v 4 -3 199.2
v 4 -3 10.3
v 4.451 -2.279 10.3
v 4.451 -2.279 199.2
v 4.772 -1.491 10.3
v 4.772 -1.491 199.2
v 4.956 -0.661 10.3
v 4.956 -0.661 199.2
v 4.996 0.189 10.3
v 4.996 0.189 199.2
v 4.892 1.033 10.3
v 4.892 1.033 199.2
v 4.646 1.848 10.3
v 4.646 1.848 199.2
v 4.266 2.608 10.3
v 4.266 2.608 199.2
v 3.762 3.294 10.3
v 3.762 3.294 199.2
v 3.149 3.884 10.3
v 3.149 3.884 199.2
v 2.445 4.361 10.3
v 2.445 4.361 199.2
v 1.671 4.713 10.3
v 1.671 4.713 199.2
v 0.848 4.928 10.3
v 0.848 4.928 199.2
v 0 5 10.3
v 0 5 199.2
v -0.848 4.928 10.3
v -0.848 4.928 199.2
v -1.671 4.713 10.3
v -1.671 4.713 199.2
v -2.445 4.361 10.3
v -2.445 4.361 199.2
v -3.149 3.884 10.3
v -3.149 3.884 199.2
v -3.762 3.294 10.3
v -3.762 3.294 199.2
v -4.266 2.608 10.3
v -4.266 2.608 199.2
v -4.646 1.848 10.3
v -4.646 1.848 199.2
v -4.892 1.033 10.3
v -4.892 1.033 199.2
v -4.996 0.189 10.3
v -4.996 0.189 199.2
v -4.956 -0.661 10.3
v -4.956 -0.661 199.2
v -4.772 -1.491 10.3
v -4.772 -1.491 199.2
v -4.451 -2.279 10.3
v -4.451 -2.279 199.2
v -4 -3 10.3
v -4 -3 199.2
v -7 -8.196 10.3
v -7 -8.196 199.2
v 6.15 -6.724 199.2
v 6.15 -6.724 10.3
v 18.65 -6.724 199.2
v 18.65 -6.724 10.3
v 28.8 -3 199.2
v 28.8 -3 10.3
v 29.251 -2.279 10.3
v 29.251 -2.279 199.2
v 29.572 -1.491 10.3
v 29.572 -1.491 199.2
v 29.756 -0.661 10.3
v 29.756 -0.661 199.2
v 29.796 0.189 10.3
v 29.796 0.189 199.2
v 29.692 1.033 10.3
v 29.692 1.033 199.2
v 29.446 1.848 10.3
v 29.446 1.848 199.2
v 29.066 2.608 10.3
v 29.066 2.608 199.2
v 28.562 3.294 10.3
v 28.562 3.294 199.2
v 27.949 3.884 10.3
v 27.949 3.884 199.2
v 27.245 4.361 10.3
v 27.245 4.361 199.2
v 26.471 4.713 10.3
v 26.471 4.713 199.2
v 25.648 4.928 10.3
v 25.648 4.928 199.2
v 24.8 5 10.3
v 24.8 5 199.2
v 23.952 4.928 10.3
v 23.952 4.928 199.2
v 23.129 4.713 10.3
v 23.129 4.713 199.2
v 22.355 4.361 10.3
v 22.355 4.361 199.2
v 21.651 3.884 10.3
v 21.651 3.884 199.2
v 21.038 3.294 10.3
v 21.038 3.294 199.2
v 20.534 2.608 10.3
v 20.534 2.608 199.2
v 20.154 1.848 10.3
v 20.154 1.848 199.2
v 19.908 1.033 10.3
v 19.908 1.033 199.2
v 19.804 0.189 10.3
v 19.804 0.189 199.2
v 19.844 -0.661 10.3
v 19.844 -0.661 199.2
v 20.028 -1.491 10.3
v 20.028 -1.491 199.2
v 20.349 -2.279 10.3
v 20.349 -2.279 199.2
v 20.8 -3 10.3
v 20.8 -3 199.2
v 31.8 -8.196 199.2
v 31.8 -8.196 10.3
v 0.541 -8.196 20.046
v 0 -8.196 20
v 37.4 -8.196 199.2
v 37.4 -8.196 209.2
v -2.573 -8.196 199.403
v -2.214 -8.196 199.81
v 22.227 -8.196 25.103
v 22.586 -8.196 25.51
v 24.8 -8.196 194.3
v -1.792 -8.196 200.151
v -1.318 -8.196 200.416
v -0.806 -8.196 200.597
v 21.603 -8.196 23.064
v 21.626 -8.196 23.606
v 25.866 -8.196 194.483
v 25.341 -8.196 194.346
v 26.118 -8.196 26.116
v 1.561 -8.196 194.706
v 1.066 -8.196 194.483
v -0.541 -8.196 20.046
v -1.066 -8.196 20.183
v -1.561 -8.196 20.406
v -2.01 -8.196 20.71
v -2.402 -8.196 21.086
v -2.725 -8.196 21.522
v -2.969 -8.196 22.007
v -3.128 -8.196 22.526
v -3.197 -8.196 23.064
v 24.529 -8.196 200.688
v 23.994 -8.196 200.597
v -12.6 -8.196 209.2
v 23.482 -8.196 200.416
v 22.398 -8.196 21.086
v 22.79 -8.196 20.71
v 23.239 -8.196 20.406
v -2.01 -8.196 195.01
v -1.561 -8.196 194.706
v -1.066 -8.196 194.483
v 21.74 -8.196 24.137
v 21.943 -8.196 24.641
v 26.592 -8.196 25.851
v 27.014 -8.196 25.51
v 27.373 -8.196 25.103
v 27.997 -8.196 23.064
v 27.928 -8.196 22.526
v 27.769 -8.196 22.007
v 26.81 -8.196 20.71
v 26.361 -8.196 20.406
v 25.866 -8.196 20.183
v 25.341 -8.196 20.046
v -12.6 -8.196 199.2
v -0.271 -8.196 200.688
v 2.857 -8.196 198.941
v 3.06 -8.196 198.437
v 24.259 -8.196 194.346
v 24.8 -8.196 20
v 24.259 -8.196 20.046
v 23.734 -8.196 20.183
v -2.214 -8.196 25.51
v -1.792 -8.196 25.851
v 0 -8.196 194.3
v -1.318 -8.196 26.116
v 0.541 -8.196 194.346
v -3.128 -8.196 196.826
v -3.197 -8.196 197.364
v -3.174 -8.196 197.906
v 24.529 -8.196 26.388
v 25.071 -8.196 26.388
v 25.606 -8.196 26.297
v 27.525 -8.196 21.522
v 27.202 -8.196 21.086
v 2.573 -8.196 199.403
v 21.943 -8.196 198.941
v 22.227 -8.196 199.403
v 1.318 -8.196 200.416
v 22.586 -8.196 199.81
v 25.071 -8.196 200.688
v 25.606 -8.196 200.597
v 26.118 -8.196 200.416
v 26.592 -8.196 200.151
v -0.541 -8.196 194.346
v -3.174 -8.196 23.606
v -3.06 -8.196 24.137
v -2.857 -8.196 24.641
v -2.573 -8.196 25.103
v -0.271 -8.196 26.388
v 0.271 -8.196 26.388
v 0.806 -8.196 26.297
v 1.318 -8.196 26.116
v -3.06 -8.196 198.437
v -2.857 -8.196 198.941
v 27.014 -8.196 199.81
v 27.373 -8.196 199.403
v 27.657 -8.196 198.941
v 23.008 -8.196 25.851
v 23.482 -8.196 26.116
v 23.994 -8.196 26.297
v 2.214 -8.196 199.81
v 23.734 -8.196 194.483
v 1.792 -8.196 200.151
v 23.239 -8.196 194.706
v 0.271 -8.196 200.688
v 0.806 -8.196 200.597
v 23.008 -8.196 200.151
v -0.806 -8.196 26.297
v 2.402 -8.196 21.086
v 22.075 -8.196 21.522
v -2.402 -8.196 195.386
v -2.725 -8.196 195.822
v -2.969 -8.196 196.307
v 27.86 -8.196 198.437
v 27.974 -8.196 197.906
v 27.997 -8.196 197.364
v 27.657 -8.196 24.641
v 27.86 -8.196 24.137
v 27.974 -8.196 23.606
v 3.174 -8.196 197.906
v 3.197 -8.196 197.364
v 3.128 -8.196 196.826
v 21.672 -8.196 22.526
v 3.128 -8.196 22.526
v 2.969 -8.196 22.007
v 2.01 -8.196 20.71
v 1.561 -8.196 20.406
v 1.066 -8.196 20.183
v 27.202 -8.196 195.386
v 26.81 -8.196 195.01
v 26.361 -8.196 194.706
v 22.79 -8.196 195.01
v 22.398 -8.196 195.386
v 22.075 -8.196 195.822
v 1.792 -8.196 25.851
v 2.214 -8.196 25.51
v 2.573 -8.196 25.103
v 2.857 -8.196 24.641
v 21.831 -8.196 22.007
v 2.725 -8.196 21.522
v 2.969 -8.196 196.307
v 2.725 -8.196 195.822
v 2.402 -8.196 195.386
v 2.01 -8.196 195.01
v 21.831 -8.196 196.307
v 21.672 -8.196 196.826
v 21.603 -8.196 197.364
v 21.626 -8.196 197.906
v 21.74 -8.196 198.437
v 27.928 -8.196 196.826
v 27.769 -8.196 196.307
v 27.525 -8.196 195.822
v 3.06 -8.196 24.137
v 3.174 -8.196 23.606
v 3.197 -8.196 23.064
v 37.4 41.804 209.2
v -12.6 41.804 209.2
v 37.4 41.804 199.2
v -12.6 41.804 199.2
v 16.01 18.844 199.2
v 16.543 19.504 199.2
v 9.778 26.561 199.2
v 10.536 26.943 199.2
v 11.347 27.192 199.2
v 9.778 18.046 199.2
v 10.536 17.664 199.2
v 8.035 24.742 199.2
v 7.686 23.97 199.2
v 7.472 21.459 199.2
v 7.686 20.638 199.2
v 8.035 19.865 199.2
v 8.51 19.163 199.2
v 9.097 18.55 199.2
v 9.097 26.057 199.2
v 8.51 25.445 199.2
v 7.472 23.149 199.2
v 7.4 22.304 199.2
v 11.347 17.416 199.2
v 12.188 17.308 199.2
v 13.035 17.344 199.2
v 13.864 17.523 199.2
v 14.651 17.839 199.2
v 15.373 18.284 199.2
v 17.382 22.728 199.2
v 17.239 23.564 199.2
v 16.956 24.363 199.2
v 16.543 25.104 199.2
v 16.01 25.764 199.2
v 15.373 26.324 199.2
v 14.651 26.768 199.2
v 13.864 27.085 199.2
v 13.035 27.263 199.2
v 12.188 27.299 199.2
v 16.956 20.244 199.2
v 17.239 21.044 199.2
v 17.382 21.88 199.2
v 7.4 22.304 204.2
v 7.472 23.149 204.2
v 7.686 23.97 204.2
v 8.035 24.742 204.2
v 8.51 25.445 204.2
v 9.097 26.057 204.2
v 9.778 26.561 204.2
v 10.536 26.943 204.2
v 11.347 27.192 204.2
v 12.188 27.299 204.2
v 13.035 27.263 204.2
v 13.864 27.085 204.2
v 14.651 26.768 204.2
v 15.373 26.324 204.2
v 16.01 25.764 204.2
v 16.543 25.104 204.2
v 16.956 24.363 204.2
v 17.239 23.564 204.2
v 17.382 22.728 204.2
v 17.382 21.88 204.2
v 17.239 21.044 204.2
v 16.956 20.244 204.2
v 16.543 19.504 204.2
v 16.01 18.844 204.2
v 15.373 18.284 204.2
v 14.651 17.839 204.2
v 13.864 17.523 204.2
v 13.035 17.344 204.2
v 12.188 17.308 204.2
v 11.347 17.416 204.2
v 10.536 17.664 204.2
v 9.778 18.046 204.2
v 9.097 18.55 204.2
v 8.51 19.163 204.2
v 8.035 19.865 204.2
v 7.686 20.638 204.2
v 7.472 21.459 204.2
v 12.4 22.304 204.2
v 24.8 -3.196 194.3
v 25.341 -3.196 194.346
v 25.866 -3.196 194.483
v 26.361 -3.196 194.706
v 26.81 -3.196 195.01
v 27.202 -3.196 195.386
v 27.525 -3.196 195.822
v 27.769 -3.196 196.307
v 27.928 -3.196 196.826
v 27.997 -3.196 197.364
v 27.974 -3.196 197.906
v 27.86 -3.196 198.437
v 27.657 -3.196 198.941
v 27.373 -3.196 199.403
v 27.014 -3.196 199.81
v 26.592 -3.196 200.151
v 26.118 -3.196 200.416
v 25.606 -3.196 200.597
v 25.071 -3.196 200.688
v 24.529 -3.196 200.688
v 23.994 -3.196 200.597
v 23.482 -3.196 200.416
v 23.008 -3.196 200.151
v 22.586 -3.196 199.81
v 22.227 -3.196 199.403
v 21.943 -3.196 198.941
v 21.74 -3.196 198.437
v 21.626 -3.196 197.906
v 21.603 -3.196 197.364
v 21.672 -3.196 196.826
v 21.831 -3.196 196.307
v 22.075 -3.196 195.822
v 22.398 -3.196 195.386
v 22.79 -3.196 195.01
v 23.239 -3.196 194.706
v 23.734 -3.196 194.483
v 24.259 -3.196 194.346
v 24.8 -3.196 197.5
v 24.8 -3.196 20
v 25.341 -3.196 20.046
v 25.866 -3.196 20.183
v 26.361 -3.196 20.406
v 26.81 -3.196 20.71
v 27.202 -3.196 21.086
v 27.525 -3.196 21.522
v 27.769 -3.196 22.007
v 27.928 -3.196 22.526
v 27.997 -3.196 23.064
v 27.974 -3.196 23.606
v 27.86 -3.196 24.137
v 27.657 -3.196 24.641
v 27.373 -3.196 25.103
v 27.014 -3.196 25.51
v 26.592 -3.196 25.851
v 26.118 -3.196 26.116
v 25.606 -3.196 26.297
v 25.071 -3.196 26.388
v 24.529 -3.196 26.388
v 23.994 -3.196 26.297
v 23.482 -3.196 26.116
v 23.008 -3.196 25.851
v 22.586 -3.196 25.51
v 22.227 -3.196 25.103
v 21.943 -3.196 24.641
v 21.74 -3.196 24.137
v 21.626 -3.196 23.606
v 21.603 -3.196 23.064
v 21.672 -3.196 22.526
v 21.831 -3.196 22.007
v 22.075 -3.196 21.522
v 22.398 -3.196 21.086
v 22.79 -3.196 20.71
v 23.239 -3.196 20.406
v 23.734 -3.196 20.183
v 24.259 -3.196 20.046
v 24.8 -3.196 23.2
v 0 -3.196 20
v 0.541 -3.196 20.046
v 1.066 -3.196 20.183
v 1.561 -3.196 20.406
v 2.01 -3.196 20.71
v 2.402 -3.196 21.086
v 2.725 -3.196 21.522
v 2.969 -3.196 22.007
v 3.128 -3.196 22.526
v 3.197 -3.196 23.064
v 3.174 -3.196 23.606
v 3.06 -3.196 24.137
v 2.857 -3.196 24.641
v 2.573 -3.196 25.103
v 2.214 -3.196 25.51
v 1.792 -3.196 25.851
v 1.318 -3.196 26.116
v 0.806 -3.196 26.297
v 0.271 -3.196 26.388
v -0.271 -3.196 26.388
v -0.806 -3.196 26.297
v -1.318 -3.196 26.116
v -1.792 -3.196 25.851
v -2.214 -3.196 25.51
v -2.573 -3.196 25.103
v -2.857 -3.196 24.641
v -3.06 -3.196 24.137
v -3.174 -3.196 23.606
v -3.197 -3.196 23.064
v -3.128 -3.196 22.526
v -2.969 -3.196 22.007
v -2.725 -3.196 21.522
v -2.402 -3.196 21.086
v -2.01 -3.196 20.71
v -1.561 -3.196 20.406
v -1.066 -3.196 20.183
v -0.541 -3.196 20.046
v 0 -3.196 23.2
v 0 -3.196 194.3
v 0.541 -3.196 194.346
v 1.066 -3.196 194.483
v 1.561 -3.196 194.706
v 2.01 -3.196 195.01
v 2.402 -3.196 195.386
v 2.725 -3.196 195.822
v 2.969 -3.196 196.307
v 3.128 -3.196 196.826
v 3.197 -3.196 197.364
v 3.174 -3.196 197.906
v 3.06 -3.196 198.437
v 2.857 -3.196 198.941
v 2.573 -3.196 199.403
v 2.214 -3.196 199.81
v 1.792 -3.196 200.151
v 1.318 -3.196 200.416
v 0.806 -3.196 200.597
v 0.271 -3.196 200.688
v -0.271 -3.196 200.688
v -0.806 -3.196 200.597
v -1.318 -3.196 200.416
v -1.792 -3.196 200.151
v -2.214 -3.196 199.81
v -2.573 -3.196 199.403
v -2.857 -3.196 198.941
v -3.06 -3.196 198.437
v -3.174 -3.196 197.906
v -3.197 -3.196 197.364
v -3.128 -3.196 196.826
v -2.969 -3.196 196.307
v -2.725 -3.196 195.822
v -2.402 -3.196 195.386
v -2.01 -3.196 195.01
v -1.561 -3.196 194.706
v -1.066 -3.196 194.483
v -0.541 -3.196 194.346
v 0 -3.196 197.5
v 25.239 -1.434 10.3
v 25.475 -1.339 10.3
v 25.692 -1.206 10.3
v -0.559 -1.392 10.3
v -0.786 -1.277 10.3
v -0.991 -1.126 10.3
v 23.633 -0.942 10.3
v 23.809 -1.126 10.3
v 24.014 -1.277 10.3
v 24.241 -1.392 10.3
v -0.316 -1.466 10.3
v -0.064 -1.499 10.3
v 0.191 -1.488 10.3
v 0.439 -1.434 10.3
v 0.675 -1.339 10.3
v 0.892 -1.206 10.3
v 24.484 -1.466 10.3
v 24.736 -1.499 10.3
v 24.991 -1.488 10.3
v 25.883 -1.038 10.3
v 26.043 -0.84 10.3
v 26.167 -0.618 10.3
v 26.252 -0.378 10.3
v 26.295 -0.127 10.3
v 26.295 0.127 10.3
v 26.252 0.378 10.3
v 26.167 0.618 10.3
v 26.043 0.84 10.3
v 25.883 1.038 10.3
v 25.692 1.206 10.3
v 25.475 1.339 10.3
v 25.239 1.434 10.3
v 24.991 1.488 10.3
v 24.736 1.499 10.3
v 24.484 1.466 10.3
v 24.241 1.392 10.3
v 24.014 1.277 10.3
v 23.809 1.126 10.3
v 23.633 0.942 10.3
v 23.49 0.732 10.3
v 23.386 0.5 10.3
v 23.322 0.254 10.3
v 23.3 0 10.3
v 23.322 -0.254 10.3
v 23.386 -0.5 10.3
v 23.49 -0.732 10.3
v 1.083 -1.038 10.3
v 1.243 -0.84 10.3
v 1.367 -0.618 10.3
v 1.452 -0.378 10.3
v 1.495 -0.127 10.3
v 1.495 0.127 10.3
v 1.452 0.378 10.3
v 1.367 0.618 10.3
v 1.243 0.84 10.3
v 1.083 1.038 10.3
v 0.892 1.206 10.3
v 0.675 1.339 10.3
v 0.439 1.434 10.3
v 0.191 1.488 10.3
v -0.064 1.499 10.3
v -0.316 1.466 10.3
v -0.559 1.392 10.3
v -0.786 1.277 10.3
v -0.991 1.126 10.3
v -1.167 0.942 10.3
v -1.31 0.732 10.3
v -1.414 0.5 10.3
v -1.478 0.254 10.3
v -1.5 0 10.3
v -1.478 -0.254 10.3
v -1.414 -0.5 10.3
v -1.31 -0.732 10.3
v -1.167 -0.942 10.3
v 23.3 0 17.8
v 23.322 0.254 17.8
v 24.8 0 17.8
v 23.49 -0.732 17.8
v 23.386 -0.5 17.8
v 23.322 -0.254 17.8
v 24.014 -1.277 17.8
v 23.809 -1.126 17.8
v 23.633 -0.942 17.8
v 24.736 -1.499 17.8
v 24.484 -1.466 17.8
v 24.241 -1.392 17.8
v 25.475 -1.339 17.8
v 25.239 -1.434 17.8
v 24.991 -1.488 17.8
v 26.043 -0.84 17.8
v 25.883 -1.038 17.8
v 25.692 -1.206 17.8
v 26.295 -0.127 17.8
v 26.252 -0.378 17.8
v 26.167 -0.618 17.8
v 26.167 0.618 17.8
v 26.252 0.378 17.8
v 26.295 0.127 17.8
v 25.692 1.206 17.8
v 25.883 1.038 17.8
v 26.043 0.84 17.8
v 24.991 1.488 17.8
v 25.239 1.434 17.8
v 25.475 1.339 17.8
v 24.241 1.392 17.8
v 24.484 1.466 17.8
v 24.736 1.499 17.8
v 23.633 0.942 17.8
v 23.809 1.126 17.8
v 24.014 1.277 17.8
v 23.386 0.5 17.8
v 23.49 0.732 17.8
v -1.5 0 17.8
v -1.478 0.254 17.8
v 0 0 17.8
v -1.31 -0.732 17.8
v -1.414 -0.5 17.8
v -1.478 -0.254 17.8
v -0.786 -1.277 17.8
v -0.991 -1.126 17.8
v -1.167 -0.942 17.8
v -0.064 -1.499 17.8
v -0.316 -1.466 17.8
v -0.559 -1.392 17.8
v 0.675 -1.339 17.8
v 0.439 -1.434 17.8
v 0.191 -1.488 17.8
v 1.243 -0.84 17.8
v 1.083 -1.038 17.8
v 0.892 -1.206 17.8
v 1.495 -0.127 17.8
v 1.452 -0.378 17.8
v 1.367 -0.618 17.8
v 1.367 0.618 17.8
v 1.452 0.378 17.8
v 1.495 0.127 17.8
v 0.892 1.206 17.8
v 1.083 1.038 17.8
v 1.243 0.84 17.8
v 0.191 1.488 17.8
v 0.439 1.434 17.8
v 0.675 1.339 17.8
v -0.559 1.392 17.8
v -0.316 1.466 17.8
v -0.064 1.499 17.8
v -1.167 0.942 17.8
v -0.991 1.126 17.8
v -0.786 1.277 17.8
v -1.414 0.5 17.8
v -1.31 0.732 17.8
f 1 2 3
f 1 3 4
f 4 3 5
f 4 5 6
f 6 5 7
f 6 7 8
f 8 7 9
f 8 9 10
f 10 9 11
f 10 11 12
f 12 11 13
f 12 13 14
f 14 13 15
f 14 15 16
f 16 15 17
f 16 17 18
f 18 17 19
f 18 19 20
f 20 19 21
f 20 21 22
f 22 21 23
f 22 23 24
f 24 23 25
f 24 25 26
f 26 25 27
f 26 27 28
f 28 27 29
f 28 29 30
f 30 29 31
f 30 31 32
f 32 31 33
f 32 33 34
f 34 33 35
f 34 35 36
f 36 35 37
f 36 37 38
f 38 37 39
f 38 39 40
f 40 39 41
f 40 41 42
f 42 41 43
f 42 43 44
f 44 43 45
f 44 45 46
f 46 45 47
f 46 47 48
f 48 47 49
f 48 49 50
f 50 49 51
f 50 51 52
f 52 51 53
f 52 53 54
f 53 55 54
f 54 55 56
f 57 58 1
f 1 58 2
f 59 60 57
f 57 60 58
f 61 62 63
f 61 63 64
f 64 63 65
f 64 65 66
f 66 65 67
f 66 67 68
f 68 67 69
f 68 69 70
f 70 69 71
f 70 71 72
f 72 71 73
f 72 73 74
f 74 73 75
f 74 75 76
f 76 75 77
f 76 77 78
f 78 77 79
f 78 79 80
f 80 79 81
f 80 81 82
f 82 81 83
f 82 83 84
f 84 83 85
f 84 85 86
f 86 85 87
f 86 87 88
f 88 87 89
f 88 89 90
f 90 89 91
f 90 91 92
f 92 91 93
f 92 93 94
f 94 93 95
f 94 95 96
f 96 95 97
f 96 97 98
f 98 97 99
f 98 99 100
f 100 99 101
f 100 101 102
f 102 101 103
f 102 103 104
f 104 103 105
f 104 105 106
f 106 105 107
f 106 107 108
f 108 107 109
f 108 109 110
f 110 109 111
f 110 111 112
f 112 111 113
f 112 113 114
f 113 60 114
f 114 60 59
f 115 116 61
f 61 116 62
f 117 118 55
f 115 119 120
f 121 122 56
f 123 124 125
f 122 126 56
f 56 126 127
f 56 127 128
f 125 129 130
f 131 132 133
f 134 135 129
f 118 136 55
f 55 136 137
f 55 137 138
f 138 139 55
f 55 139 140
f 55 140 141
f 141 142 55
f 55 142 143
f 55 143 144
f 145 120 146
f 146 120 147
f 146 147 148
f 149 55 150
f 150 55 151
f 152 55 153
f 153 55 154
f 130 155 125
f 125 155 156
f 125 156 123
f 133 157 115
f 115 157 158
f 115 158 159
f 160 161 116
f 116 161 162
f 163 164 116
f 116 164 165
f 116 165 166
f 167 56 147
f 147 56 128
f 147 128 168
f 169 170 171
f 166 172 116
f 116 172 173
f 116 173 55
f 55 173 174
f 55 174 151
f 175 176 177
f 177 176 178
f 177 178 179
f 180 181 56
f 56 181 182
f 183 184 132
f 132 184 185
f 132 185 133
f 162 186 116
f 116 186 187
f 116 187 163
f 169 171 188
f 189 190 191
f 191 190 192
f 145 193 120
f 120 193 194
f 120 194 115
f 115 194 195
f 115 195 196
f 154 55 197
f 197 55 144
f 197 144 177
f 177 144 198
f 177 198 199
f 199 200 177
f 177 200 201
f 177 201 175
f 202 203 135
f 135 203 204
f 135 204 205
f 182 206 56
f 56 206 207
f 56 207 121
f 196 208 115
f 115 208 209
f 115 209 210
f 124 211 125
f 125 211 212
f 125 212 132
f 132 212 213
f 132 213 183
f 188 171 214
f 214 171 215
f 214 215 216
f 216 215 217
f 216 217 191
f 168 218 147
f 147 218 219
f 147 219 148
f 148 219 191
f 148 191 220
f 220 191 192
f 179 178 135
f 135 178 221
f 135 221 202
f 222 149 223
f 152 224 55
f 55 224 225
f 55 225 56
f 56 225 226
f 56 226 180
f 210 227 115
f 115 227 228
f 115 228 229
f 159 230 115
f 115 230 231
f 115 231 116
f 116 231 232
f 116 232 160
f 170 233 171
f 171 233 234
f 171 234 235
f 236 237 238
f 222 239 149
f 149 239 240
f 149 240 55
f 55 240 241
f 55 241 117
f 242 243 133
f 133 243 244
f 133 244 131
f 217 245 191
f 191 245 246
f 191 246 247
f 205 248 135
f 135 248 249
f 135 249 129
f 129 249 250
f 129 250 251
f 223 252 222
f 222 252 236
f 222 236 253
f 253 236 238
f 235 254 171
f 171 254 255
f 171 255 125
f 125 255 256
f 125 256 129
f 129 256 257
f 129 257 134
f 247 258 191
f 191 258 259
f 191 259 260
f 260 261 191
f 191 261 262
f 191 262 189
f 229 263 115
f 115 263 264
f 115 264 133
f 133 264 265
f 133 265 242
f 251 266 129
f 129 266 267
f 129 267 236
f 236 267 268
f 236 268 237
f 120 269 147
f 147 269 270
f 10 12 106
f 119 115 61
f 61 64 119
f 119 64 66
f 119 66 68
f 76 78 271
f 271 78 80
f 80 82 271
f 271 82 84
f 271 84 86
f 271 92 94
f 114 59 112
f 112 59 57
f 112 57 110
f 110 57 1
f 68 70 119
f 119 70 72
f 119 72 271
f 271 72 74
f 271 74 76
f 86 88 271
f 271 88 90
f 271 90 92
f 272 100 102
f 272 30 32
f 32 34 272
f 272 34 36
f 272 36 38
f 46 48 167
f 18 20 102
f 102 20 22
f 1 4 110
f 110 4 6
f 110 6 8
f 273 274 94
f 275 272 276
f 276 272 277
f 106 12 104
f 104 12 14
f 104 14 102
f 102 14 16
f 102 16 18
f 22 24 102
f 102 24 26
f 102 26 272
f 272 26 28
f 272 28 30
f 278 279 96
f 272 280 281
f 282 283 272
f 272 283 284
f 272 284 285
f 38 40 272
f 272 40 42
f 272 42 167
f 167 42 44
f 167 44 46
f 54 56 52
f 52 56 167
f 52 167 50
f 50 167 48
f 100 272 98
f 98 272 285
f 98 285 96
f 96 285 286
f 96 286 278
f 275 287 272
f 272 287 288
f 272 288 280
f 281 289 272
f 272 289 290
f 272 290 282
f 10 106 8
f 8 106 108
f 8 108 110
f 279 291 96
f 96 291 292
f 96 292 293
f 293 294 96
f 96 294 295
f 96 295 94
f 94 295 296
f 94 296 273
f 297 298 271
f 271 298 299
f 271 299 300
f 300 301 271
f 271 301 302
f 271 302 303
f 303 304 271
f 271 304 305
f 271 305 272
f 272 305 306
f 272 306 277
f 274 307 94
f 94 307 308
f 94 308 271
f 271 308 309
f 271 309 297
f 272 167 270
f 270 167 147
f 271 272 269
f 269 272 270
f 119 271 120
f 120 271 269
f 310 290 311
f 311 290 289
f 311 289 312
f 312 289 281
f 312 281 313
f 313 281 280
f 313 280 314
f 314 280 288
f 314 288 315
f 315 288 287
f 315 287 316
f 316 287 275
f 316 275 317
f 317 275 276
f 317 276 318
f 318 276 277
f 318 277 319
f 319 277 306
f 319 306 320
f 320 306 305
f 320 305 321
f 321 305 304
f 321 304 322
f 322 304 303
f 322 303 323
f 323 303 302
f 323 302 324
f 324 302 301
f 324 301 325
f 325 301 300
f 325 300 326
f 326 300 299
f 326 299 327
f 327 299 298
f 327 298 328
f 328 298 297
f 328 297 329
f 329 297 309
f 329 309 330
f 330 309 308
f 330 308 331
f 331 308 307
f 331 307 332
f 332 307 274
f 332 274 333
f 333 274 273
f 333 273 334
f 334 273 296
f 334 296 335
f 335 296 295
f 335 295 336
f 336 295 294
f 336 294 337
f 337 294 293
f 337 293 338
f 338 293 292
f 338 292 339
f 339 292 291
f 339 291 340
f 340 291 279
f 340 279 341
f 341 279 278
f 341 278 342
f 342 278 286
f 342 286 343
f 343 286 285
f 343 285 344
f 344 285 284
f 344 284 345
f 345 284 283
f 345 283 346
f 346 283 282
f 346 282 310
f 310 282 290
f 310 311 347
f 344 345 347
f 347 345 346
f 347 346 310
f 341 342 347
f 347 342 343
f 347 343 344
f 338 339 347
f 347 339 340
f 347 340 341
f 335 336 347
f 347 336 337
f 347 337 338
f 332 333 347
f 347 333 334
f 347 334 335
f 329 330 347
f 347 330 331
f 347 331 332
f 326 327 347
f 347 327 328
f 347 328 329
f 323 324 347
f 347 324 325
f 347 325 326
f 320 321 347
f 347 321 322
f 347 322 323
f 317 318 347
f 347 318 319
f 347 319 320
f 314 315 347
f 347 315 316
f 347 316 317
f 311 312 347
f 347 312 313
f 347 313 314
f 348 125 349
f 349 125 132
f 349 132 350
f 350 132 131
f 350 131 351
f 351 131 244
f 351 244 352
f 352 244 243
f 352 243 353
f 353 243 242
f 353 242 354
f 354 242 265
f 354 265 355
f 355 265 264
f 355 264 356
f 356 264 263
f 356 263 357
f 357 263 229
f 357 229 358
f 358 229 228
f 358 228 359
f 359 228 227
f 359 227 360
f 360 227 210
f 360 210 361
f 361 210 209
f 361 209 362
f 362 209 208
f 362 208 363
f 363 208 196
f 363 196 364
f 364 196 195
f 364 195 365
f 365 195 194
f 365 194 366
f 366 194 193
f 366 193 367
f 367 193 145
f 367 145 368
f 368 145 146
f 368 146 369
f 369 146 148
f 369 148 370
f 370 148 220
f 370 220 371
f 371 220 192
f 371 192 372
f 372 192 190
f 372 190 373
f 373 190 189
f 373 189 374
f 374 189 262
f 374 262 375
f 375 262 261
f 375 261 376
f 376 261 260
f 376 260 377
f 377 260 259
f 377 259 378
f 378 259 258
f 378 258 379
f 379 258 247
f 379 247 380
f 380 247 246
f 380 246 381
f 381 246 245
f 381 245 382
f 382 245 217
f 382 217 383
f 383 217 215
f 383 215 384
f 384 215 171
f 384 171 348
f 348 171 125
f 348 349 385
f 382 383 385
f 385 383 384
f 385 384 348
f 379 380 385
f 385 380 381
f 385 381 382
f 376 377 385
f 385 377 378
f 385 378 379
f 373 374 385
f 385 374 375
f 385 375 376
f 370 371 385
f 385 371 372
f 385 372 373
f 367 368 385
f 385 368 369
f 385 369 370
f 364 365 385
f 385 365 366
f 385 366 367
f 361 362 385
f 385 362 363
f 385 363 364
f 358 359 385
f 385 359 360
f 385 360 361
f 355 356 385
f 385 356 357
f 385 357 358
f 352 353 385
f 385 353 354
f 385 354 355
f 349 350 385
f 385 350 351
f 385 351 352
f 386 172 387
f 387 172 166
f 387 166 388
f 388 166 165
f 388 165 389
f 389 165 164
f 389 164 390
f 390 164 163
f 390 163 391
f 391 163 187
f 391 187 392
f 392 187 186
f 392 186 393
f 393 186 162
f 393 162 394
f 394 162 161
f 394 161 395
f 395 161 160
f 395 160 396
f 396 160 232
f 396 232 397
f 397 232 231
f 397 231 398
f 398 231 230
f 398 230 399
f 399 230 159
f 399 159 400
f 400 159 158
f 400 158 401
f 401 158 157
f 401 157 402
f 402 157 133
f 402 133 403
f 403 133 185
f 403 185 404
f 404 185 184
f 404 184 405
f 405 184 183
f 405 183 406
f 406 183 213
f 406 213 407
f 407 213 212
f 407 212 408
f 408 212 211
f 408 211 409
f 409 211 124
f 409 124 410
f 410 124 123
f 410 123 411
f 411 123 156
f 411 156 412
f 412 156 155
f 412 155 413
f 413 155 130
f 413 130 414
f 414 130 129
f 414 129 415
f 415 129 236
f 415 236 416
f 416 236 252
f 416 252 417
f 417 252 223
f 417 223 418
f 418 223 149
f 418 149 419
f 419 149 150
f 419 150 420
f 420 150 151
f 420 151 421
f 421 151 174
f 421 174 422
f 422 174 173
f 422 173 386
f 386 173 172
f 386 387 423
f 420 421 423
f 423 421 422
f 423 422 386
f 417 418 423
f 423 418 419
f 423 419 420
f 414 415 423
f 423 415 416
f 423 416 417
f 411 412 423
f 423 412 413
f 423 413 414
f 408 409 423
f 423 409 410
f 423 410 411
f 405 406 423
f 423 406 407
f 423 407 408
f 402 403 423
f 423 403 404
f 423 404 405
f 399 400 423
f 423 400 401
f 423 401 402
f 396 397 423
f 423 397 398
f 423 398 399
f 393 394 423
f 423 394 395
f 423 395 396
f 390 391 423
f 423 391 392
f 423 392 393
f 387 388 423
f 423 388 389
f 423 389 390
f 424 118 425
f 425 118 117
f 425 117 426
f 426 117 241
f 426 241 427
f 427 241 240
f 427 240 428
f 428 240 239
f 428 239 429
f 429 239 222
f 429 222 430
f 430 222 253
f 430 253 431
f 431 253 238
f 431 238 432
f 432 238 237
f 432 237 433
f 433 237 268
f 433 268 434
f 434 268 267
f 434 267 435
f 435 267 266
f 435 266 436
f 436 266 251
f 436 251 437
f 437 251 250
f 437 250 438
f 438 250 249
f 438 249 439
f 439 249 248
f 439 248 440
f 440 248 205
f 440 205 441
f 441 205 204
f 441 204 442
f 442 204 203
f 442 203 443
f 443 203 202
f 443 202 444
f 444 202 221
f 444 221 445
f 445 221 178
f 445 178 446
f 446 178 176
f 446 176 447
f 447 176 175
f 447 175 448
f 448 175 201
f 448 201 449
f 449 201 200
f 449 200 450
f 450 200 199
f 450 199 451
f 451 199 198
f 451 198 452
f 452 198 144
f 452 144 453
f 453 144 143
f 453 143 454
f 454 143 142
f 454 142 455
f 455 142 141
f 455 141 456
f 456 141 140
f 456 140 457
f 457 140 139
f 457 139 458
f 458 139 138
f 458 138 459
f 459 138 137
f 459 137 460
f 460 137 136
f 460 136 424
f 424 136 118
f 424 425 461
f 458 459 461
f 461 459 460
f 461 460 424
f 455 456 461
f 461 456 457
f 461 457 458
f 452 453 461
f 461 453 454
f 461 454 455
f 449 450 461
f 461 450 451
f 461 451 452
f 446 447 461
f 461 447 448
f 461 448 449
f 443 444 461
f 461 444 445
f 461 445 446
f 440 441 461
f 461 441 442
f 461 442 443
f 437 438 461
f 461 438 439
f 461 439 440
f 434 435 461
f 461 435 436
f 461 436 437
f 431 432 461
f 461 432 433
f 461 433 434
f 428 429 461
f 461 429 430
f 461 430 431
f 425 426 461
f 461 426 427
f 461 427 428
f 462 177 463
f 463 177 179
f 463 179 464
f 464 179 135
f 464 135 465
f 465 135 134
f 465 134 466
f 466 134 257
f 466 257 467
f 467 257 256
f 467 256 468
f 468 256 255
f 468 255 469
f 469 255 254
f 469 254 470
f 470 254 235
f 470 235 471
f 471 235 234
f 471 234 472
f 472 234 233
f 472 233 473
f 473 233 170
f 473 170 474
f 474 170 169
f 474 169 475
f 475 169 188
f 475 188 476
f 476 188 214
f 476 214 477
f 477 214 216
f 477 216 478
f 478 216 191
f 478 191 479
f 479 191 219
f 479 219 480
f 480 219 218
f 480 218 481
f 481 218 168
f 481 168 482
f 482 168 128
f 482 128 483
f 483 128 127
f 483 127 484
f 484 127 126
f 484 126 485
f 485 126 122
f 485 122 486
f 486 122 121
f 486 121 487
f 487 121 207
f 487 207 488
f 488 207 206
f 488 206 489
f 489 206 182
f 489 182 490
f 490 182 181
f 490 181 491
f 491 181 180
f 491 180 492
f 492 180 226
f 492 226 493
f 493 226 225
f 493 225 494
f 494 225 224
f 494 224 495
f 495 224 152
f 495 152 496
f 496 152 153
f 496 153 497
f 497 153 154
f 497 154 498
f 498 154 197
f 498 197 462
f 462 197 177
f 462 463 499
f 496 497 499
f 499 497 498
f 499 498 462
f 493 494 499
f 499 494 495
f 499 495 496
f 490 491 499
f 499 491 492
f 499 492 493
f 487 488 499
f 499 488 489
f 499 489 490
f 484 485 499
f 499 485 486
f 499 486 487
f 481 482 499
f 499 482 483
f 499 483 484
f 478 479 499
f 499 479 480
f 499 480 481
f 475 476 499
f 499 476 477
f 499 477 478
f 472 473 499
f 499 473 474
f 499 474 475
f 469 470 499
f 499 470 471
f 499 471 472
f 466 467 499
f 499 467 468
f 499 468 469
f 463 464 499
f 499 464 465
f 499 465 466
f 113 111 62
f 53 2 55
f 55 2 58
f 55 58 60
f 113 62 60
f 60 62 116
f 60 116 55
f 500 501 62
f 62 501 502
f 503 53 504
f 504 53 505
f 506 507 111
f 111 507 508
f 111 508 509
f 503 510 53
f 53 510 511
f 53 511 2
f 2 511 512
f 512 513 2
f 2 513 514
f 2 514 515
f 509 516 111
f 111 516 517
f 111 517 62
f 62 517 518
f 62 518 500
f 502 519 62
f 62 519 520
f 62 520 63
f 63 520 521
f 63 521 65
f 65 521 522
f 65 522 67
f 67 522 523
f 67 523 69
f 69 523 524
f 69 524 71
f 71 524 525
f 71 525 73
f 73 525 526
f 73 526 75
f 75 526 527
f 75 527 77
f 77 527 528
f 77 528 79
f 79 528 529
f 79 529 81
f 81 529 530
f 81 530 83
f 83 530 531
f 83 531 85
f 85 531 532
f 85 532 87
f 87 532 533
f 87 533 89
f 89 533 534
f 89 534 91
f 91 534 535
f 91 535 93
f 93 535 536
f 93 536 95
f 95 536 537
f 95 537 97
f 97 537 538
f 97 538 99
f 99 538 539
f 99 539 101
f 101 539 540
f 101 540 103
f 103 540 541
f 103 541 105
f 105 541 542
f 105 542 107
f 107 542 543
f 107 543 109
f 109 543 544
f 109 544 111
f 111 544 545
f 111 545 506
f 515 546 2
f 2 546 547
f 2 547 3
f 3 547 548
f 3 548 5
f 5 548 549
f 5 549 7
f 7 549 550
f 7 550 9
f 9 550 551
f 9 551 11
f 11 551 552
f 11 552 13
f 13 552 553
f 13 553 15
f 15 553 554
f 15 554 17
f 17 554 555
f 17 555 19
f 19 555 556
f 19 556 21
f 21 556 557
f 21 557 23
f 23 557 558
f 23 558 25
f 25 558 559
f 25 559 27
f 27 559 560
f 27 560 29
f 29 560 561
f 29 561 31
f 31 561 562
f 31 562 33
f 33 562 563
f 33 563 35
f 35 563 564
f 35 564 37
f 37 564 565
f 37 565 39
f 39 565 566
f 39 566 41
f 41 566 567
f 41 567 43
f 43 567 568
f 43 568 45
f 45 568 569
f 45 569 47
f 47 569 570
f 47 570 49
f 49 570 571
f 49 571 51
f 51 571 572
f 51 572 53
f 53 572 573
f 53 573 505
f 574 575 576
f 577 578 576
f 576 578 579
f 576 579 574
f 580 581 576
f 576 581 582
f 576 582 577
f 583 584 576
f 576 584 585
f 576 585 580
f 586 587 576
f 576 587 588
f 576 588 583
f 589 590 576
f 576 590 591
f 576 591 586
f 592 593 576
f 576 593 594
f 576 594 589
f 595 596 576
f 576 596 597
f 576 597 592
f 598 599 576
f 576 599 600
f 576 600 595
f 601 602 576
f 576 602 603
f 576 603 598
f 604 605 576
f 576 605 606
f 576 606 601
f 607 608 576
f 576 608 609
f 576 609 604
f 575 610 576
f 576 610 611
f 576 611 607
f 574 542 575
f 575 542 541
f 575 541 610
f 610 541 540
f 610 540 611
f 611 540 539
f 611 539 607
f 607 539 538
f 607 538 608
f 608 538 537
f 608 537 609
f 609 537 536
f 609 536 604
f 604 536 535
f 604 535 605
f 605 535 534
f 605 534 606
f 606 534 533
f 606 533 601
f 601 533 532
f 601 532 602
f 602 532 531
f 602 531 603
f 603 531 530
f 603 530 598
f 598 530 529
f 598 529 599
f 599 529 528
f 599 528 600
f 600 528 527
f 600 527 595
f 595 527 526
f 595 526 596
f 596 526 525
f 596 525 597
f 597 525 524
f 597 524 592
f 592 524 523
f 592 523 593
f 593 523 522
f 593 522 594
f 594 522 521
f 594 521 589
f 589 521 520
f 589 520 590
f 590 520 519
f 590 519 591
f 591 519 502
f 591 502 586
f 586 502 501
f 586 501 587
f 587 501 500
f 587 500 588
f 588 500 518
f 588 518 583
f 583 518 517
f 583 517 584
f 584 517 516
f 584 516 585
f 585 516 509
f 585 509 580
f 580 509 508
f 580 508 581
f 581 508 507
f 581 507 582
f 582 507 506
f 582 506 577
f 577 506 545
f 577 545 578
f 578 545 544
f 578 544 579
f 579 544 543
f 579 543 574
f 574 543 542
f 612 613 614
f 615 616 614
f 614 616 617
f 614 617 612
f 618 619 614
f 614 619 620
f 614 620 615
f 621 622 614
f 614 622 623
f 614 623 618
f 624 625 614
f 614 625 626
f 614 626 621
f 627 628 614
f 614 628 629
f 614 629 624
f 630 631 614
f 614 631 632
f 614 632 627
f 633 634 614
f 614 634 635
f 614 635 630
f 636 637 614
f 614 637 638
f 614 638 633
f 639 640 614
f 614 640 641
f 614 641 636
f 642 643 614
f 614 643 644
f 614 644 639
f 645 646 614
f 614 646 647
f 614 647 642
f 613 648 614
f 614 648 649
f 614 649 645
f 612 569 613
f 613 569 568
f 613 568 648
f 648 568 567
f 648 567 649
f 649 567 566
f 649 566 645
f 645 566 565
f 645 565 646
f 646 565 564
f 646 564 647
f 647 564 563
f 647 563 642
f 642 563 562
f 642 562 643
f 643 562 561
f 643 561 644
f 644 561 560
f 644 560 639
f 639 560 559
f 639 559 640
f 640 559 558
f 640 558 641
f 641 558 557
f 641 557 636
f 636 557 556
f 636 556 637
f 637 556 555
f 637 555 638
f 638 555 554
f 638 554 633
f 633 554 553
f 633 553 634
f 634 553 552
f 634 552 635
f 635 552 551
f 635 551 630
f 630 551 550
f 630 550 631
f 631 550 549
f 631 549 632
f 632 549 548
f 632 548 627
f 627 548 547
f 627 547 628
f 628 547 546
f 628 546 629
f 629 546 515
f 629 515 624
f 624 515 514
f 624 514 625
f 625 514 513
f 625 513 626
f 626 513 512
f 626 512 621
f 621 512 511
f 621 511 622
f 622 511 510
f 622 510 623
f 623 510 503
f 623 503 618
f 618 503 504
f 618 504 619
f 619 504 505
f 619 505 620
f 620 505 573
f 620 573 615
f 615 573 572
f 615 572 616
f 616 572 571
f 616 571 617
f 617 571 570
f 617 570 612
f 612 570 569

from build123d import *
from build123d.topology import SkipClean

# Parameters (mm, degrees)
BOSS_EXTRUDE1_DEPTH   = 220
BOSS_EXTRUDE1_2_DEPTH = 220
BOSS_EXTRUDE4_DEPTH   = 220
SKETCH5_R             = 1.37
CUT_EXTRUDE1_DEPTH    = 7
CUT_EXTRUDE2_START    = -7
SKETCH6_R             = 1.37
CUT_EXTRUDE2_DEPTH    = 7
CUT_EXTRUDE4_DEPTH    = 10.8
CUT_EXTRUDE5_START    = -10.8
CUT_EXTRUDE5_DEPTH    = 10.8
SKETCH11_R            = 2
CUT_EXTRUDE6_DEPTH    = 7
SKETCH12_R            = 1.5
CUT_EXTRUDE7_DEPTH    = 7
SKETCH13_W            = 50
SKETCH13_H            = 50
BOSS_EXTRUDE5_DEPTH   = 10
SKETCH14_R            = 5
CUT_EXTRUDE8_DEPTH    = 5
SKETCH4_2_R           = 3.2
CUT_EXTRUDE9_DEPTH    = 5
BOSS_EXTRUDE7_START   = 0.5
SKETCH16_R            = 1.5
BOSS_EXTRUDE7_DEPTH   = 0.5


with BuildPart() as part:
    # Sketch1 → Boss-Extrude1 (new body)
    with BuildSketch(Plane.XY):
        with BuildLine():
            Line((-4, -3), (-7, -8.196152423))
            Line((-7, -8.196152423), (7, -8.196152423))
            Line((7, -8.196152423), (4, -3))
            ThreePointArc((4, -3), (0, 5), (-4, -3))
        make_face()
    extrude(amount=BOSS_EXTRUDE1_DEPTH)



with BuildPart() as body_2:
    # Sketch1 → Boss-Extrude1 2 (new body)
    with BuildSketch(Plane.XY):
        with BuildLine():
            Line((31.8, -8.196152423), (28.8, -3))
            ThreePointArc((28.8, -3), (24.8, 5), (20.8, -3))
            Line((20.8, -3), (17.8, -8.196152423))
            Line((17.8, -8.196152423), (31.8, -8.196152423))
        make_face()
    extrude(amount=BOSS_EXTRUDE1_2_DEPTH)


with BuildPart() as part_1:
    add(part.part)

    add(body_2.part)  # Boss-Extrude4 merges body 2
    # Sketch3 → Boss-Extrude4 (add)
    with BuildSketch(Plane.XY.offset(220)):
        Polygon((7, -8.196152423), (17.8, -8.196152423), (18.65, -8.196152423), (18.65, -6.723909236), (6.15, -6.723909236), (6.15, -8.196152423), align=None)
    extrude(amount=-BOSS_EXTRUDE4_DEPTH)

    # Sketch5 → Cut-Extrude1 (cut)
    with BuildSketch(Plane(origin=(0, 0, 0), x_dir=(-1, 0, 0), z_dir=(0, 0, -1))):
        Circle(SKETCH5_R)
        with Locations((-24.8, 0)):
            Circle(SKETCH5_R)
    extrude(amount=-CUT_EXTRUDE1_DEPTH, mode=Mode.SUBTRACT)

    # Sketch6 → Cut-Extrude2 (cut)
    with BuildSketch(Plane.XY.offset(220).offset(CUT_EXTRUDE2_START)):
        Circle(SKETCH6_R)
        with Locations((24.8, 0)):
            Circle(SKETCH6_R)
    extrude(amount=CUT_EXTRUDE2_DEPTH, mode=Mode.SUBTRACT)

    # Sketch9 → Cut-Extrude4 (cut)
    with BuildSketch(Plane(origin=(0, 0, 0), x_dir=(-1, 0, 0), z_dir=(0, 0, -1))):
        with BuildLine():
            Line((-28.8, -3), (-31.8, -8.196152423))
            Line((-31.8, -8.196152423), (7, -8.196152423))
            Line((7, -8.196152423), (4, -3))
            ThreePointArc((4, -3), (0, 5), (-4, -3))
            Line((-4, -3), (-6.15, -6.723909236))
            Line((-6.15, -6.723909236), (-18.65, -6.723909236))
            Line((-18.65, -6.723909236), (-20.8, -3))
            ThreePointArc((-20.8, -3), (-24.8, 5), (-28.8, -3))
        make_face()
    extrude(amount=-CUT_EXTRUDE4_DEPTH, mode=Mode.SUBTRACT)

    # Sketch10 → Cut-Extrude5 (cut)
    with BuildSketch(Plane.XY.offset(220).offset(CUT_EXTRUDE5_START)):
        with BuildLine():
            Line((20.8, -3), (18.65, -6.723909236))
            Line((18.65, -6.723909236), (6.15, -6.723909236))
            Line((6.15, -6.723909236), (4, -3))
            ThreePointArc((4, -3), (0, 5), (-4, -3))
            Line((-4, -3), (-7, -8.196152423))
            Line((-7, -8.196152423), (31.8, -8.196152423))
            Line((31.8, -8.196152423), (28.8, -3))
            ThreePointArc((28.8, -3), (24.8, 5), (20.8, -3))
        make_face()
    extrude(amount=CUT_EXTRUDE5_DEPTH, mode=Mode.SUBTRACT)

    # Sketch11 → Cut-Extrude6 (cut)
    with BuildSketch(Plane.XY.offset(209.2)):
        Circle(SKETCH11_R)
        with Locations((24.8, 0)):
            Circle(SKETCH11_R)
    extrude(amount=-CUT_EXTRUDE6_DEPTH, mode=Mode.SUBTRACT)

    # Sketch12 → Cut-Extrude7 (cut)
    with BuildSketch(Plane(origin=(0, 0, 10.8), x_dir=(-1, 0, 0), z_dir=(0, 0, -1))):
        Circle(SKETCH12_R)
        with Locations((-24.8, 0)):
            Circle(SKETCH12_R)
    extrude(amount=-CUT_EXTRUDE7_DEPTH, mode=Mode.SUBTRACT)

    # Sketch13 → Boss-Extrude5 (add)
    with BuildSketch(Plane.XY.offset(209.2)):
        with Locations((12.4, 16.803847577)):
            Rectangle(SKETCH13_W, SKETCH13_H)
    extrude(amount=-BOSS_EXTRUDE5_DEPTH)

    # Sketch14 → Cut-Extrude8 (cut)
    with BuildSketch(Plane(origin=(0, 0, 199.2), x_dir=(-1, 0, 0), z_dir=(0, 0, -1))):
        with Locations((-12.4, 22.303847577)):
            Circle(SKETCH14_R)
    extrude(amount=-CUT_EXTRUDE8_DEPTH, mode=Mode.SUBTRACT)

    # Sketch4<2> → Cut-Extrude9 (cut)
    with BuildSketch(Plane.XZ.offset(8.196152423)):
        with Locations((0, 197.5)):
            Circle(SKETCH4_2_R)
        with Locations((24.8, 197.5)):
            Circle(SKETCH4_2_R)
        with Locations((24.8, 23.2)):
            Circle(SKETCH4_2_R)
        with Locations((0, 23.2)):
            Circle(SKETCH4_2_R)
    extrude(amount=-CUT_EXTRUDE9_DEPTH, mode=Mode.SUBTRACT)

    # Sketch16 → Boss-Extrude7 (add)
    with SkipClean():  # the faces are left unmerged after this step: merging them gives an invalid solid
        with BuildSketch(Plane(origin=(0, 0, 10.8), x_dir=(-1, 0, 0), z_dir=(0, 0, -1)).offset(BOSS_EXTRUDE7_START)):
            with BuildLine():
                Line((-28.8, -3), (-31.8, -8.196152423))
                Line((-31.8, -8.196152423), (7, -8.196152423))
                Line((7, -8.196152423), (4, -3))
                ThreePointArc((4, -3), (0, 5), (-4, -3))
                Line((-4, -3), (-6.15, -6.723909236))
                Line((-6.15, -6.723909236), (-18.65, -6.723909236))
                Line((-18.65, -6.723909236), (-20.8, -3))
                ThreePointArc((-20.8, -3), (-24.8, 5), (-28.8, -3))
            make_face()
            with Locations((-24.8, 0)):
                Circle(SKETCH16_R, mode=Mode.SUBTRACT)
            Circle(SKETCH16_R, mode=Mode.SUBTRACT)
        extrude(amount=-BOSS_EXTRUDE7_DEPTH)


solid = part_1.part
